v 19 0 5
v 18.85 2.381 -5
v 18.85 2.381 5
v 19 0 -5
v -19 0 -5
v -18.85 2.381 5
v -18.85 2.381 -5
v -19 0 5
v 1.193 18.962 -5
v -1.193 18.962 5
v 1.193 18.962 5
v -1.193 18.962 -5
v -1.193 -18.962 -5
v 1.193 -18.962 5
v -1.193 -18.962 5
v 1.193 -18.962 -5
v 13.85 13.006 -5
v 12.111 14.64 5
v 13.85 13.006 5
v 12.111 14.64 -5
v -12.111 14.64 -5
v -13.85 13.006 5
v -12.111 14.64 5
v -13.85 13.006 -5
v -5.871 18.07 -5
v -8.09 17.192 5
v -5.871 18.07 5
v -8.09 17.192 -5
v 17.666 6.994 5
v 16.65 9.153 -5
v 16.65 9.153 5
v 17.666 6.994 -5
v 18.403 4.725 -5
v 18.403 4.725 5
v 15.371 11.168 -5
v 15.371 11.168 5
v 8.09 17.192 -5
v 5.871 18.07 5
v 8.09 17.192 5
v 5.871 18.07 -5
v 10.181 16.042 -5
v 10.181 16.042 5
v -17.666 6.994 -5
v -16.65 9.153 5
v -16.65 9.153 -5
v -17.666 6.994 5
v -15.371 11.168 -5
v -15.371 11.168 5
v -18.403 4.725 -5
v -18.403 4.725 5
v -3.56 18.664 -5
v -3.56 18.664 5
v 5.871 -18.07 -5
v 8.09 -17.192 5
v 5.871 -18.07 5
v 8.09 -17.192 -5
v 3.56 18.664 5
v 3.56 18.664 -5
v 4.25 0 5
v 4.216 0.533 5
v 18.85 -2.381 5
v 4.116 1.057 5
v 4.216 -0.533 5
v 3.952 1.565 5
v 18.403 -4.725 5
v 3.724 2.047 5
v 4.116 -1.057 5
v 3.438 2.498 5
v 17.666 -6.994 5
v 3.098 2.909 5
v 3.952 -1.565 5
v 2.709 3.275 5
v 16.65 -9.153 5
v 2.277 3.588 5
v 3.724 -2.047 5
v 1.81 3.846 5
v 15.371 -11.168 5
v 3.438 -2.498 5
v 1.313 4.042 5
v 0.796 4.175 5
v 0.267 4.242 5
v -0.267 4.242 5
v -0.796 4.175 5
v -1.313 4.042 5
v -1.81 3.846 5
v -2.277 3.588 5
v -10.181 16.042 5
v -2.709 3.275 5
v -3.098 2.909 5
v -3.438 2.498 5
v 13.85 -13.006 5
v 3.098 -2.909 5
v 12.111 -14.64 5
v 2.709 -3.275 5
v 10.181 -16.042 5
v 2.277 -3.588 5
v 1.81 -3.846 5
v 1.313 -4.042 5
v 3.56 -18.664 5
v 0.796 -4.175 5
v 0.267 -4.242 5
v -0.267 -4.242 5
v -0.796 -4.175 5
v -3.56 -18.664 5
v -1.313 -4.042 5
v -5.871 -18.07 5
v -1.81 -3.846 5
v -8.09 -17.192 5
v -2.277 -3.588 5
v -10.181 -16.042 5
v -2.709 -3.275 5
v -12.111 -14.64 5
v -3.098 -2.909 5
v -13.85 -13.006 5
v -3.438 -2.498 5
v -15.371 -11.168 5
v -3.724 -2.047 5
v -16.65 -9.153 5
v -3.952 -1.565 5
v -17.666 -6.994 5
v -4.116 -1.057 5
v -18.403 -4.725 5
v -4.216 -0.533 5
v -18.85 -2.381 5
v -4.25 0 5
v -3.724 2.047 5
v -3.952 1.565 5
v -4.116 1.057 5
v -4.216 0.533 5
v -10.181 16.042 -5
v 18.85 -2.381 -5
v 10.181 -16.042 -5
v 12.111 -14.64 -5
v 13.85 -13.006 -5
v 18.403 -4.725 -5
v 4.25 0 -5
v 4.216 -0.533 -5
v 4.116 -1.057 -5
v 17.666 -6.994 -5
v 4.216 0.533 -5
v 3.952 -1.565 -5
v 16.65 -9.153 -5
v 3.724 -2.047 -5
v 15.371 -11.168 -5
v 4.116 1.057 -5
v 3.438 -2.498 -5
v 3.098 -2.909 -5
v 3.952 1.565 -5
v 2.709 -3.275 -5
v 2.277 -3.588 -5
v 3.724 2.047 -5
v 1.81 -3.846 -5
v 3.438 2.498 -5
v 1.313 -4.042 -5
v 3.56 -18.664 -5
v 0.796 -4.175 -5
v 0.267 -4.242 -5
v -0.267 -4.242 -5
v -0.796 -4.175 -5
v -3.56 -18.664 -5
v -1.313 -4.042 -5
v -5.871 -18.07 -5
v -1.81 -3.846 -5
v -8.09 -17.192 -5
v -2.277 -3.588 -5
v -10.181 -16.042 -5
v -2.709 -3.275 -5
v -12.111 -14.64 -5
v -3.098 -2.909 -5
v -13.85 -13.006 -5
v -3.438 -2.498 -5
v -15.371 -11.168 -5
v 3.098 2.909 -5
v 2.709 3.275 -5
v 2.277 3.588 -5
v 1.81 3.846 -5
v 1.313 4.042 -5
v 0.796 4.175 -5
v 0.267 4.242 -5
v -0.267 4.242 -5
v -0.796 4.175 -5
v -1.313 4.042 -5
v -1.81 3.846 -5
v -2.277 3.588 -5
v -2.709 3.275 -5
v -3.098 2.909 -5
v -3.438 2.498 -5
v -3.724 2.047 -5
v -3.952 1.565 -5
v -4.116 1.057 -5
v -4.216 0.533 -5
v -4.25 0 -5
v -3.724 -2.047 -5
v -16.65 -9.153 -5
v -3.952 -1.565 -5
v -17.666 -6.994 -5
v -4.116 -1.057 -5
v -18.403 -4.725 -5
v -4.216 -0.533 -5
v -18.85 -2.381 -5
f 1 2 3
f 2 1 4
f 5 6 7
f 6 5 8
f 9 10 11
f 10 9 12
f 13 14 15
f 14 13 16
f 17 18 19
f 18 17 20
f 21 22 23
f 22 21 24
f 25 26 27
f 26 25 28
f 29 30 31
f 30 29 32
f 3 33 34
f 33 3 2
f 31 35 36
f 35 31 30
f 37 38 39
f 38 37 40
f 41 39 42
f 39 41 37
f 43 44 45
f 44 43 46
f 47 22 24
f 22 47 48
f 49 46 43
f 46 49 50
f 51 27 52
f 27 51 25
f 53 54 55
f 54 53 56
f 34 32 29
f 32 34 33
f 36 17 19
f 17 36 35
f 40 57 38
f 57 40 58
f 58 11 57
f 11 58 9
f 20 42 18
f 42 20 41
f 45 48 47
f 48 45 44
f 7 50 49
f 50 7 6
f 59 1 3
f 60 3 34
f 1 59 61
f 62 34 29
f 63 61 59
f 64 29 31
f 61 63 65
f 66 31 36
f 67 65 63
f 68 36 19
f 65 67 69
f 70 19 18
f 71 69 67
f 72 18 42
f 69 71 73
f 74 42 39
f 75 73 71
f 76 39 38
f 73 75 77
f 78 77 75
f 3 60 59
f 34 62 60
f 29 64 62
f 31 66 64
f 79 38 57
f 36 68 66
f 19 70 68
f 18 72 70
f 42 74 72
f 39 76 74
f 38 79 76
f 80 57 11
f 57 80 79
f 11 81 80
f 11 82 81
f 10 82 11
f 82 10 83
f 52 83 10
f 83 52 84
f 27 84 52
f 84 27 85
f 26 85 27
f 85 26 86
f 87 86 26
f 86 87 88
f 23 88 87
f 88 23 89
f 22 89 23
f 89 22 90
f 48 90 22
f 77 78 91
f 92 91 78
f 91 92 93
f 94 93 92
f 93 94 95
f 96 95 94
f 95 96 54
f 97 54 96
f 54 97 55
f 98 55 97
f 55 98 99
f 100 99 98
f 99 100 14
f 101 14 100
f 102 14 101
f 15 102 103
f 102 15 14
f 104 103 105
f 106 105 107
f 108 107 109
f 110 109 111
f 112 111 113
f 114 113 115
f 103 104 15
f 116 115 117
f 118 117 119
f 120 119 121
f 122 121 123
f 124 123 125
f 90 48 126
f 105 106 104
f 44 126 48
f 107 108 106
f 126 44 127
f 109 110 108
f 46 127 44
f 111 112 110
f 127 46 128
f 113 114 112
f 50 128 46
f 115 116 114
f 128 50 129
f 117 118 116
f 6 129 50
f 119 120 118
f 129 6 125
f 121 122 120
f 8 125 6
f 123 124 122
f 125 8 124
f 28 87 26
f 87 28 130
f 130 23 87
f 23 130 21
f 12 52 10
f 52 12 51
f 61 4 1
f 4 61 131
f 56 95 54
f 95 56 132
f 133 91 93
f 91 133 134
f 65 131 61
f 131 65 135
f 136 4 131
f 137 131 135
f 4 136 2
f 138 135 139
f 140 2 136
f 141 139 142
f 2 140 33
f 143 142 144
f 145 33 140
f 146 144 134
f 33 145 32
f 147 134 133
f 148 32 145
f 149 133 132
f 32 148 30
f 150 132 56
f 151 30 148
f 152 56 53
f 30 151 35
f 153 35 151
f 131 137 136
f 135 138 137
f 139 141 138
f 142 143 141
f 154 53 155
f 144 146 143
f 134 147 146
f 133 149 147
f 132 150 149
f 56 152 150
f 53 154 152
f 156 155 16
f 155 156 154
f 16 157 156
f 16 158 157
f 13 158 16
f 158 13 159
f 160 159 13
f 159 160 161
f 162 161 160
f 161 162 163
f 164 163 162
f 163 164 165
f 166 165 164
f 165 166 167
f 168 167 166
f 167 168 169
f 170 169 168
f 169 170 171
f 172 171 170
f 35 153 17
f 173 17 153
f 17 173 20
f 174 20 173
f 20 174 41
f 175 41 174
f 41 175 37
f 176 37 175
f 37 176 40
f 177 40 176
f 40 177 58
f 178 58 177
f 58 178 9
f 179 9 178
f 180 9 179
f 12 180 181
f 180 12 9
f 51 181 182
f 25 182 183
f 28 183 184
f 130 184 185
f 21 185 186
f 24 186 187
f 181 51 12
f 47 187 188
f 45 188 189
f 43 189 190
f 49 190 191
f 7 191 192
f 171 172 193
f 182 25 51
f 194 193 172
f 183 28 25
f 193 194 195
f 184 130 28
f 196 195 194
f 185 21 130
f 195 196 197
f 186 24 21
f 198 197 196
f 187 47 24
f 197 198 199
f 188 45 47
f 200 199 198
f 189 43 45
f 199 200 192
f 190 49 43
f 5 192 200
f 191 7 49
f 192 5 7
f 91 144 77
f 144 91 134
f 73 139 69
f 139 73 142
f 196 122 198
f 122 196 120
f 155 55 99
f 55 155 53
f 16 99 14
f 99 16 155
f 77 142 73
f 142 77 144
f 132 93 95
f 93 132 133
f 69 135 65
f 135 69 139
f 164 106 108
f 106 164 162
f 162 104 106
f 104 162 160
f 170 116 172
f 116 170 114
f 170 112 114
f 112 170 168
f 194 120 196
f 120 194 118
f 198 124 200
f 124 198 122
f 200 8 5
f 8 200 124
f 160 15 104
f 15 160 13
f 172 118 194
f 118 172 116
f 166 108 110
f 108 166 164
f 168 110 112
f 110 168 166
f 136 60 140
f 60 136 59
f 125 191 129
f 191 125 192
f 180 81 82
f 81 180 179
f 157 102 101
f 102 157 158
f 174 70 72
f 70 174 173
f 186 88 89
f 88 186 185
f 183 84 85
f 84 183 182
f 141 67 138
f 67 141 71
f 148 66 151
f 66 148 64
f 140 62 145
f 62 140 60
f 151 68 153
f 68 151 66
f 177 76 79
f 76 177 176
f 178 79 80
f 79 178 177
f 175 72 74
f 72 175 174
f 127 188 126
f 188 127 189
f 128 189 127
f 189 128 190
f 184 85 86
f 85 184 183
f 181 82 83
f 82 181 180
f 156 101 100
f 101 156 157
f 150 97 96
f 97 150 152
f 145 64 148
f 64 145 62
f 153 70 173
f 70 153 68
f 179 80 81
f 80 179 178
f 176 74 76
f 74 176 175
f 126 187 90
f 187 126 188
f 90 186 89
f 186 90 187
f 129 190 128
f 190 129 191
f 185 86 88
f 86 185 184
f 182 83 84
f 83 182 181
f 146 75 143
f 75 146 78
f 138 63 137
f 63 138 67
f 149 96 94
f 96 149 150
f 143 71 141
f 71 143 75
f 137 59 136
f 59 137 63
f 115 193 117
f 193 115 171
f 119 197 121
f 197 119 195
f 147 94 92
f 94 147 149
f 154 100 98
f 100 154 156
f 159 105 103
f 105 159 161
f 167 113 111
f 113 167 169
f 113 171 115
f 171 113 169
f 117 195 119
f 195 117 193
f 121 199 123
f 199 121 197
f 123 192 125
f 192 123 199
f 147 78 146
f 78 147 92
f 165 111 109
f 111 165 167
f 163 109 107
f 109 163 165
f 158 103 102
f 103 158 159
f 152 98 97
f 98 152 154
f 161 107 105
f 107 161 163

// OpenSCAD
$fn = 50;


difference() {
	union() {
		translate(v = [0, 0, -5.0000000000]) {
			cylinder(h = 10, r = 19.0000000000);
		}
	}
	union() {
		translate(v = [0, 0, -100.0000000000]) {
			cylinder(h = 200, r = 4.2500000000);
		}
	}
}
